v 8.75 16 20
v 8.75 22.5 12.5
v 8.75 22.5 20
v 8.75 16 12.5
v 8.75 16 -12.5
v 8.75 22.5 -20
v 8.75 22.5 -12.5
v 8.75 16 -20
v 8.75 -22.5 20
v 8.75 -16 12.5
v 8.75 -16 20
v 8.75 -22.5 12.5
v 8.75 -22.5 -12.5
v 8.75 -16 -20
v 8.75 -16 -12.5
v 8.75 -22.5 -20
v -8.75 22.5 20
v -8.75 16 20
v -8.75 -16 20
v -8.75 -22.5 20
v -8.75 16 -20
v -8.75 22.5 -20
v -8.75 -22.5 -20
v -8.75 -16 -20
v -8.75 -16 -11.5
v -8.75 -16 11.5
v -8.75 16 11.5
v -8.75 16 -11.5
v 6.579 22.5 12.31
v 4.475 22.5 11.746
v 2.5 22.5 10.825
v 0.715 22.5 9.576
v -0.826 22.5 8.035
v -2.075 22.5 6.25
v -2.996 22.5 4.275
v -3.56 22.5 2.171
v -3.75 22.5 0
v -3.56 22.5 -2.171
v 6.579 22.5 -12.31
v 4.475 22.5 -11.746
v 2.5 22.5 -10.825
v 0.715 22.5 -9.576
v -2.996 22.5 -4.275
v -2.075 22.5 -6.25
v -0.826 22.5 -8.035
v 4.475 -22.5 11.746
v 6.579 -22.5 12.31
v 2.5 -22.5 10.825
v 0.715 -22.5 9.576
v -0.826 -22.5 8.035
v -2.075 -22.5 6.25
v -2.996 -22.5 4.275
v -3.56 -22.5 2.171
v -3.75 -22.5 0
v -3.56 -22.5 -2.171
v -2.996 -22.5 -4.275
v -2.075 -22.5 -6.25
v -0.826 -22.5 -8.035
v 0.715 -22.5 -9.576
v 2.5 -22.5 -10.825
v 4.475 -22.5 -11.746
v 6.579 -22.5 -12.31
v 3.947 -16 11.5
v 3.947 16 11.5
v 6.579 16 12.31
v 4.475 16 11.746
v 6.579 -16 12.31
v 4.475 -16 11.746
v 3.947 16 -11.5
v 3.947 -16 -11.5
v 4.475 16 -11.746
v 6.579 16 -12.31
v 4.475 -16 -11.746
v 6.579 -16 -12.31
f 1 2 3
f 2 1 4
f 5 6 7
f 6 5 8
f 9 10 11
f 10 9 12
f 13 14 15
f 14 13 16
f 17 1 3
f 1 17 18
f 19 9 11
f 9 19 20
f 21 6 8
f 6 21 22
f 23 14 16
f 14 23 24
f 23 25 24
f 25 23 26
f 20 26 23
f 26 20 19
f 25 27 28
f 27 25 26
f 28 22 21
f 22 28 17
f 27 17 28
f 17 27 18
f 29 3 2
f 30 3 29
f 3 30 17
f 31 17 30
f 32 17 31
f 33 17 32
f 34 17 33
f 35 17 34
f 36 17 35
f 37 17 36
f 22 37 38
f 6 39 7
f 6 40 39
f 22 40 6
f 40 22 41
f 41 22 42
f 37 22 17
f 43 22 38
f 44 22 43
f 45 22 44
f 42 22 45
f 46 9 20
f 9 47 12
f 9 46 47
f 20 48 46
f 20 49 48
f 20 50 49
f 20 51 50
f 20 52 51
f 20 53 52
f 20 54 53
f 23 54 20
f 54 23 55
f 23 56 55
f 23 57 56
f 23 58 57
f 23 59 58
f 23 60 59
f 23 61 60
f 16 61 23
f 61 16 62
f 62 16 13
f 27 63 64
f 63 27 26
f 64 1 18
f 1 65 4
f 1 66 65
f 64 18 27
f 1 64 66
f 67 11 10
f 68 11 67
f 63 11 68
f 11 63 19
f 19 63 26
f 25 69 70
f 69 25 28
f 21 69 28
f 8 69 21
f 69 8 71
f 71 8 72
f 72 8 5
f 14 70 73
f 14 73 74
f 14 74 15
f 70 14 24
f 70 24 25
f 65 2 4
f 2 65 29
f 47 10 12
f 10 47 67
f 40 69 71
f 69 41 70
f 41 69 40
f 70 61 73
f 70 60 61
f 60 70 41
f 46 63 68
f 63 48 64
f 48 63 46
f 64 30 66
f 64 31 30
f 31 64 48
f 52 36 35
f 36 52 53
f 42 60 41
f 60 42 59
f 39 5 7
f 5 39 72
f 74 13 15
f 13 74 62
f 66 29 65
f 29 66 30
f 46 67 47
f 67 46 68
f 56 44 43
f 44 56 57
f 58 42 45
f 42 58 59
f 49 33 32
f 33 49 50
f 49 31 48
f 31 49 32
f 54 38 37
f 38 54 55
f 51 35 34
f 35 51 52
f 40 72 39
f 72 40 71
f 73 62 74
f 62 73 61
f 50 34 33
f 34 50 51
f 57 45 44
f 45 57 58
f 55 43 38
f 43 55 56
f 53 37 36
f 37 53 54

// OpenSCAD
// file: parameters.scad
// External parameters
SHOWER_BAR_DIAMETER = 25;

M4_BODY_DIAMETER = 4;
M4_HEAD_HEIGHT = 4;
M4_HEAD_DIAMETER = 7;
M4_NUT_THICKNESS= 7;

// Global parameters
ROUNDING_RADIUS = 7.5 / 2;
NOTHING = 0.01;

// OpenSCAD
$fs = 0.01;
$fn = 36;


// Model parameters
SHOWER_HANDLE_HEIGHT = 100;
SHOWER_HANDLE_DEPTH = 30;

SHOWER_HANDLE_SCREW_WIDHT = 30;
SHOWER_HANDLE_SCREW_DIAMETER_BUFFER = 10;
SHOWER_HANDLE_SCREW_LENGHT = 30;
SHOWER_HANDLE_SCREW_PITCH = 5;
SHOWER_HANDLE_SCREW_HOLE_DISTANCE = 10;

SHOWER_HANDLE_NUT_LENGHT = 20;
SHOWER_HANDLE_NUT_THICKNESS = 10;

SHOWER_HANDLE_WASHER_THICKNESS = 5;
SHOWER_HANDLE_WASHER_MARGIN = 15;
SHOWER_HANDLE_WASHER_CLEARANCE = 2;

SHOWER_SUPPORT_WIDHT = 100;
SHOWER_SUPPORT_HEIGHT = SHOWER_HANDLE_HEIGHT;
SHOWER_SUPPORT_DEPTH = SHOWER_HANDLE_DEPTH;
SHOWER_SUPPORT_THICKNESS = 5;
SHOWER_SUPPORT_ATTACHING_HOLE_DIAMETER = 10 + M4_NUT_THICKNESS;
SHOWER_SUPPORT_ATTACHING_HOLE_DEPTH = 10;
SHOWER_SUPPORT_ATTACHING_HOLE_DEPTH_CLEARANCE = 1;
SHOWER_SUPPORT_ATTACHING_DISTANCE_TO_EDGES = 20;
SHOWER_SUPPORT_ATTACHING_HOLE_DIAMETER_CLEARANCE = 1;
SHOWER_SUPPORT_ATTACHING_HOLE_NUT_HOLE_DEPTH_CLEARANCE = 1;
// main file
include <parameters.scad>

module shower_handle_washer(
    margin_depth,
    margin_width,
    thickness,
    bar_diameter,
    depth,
) {
    color("red")
    difference() {
        cube([ thickness, depth + margin_depth, bar_diameter + margin_width ], center=true);

        translate([ 0, 0, bar_diameter ])
            cube([ thickness + depth, depth + SHOWER_HANDLE_WASHER_CLEARANCE, bar_diameter + SHOWER_HANDLE_WASHER_CLEARANCE ], center=true);

        translate([ 0, 0, -bar_diameter ])
            cube([ thickness + depth, depth + SHOWER_HANDLE_WASHER_CLEARANCE, bar_diameter + SHOWER_HANDLE_WASHER_CLEARANCE ], center=true);

        translate([ (thickness) / 2, 0, 0 ])
        rotate([ 90, 0, 0 ])
            cylinder(h=depth + margin_depth + SHOWER_HANDLE_WASHER_CLEARANCE, d=bar_diameter, center=true);
    }
}

module SHOWER_HANDLE_WASHER() {
    shower_handle_washer(
        thickness=SHOWER_BAR_DIAMETER/2+SHOWER_HANDLE_WASHER_THICKNESS,
        margin_depth=SHOWER_HANDLE_WASHER_MARGIN,
        margin_width=SHOWER_HANDLE_WASHER_MARGIN,
        bar_diameter=SHOWER_BAR_DIAMETER,
        depth=SHOWER_HANDLE_DEPTH
    );
}

SHOWER_HANDLE_WASHER();
